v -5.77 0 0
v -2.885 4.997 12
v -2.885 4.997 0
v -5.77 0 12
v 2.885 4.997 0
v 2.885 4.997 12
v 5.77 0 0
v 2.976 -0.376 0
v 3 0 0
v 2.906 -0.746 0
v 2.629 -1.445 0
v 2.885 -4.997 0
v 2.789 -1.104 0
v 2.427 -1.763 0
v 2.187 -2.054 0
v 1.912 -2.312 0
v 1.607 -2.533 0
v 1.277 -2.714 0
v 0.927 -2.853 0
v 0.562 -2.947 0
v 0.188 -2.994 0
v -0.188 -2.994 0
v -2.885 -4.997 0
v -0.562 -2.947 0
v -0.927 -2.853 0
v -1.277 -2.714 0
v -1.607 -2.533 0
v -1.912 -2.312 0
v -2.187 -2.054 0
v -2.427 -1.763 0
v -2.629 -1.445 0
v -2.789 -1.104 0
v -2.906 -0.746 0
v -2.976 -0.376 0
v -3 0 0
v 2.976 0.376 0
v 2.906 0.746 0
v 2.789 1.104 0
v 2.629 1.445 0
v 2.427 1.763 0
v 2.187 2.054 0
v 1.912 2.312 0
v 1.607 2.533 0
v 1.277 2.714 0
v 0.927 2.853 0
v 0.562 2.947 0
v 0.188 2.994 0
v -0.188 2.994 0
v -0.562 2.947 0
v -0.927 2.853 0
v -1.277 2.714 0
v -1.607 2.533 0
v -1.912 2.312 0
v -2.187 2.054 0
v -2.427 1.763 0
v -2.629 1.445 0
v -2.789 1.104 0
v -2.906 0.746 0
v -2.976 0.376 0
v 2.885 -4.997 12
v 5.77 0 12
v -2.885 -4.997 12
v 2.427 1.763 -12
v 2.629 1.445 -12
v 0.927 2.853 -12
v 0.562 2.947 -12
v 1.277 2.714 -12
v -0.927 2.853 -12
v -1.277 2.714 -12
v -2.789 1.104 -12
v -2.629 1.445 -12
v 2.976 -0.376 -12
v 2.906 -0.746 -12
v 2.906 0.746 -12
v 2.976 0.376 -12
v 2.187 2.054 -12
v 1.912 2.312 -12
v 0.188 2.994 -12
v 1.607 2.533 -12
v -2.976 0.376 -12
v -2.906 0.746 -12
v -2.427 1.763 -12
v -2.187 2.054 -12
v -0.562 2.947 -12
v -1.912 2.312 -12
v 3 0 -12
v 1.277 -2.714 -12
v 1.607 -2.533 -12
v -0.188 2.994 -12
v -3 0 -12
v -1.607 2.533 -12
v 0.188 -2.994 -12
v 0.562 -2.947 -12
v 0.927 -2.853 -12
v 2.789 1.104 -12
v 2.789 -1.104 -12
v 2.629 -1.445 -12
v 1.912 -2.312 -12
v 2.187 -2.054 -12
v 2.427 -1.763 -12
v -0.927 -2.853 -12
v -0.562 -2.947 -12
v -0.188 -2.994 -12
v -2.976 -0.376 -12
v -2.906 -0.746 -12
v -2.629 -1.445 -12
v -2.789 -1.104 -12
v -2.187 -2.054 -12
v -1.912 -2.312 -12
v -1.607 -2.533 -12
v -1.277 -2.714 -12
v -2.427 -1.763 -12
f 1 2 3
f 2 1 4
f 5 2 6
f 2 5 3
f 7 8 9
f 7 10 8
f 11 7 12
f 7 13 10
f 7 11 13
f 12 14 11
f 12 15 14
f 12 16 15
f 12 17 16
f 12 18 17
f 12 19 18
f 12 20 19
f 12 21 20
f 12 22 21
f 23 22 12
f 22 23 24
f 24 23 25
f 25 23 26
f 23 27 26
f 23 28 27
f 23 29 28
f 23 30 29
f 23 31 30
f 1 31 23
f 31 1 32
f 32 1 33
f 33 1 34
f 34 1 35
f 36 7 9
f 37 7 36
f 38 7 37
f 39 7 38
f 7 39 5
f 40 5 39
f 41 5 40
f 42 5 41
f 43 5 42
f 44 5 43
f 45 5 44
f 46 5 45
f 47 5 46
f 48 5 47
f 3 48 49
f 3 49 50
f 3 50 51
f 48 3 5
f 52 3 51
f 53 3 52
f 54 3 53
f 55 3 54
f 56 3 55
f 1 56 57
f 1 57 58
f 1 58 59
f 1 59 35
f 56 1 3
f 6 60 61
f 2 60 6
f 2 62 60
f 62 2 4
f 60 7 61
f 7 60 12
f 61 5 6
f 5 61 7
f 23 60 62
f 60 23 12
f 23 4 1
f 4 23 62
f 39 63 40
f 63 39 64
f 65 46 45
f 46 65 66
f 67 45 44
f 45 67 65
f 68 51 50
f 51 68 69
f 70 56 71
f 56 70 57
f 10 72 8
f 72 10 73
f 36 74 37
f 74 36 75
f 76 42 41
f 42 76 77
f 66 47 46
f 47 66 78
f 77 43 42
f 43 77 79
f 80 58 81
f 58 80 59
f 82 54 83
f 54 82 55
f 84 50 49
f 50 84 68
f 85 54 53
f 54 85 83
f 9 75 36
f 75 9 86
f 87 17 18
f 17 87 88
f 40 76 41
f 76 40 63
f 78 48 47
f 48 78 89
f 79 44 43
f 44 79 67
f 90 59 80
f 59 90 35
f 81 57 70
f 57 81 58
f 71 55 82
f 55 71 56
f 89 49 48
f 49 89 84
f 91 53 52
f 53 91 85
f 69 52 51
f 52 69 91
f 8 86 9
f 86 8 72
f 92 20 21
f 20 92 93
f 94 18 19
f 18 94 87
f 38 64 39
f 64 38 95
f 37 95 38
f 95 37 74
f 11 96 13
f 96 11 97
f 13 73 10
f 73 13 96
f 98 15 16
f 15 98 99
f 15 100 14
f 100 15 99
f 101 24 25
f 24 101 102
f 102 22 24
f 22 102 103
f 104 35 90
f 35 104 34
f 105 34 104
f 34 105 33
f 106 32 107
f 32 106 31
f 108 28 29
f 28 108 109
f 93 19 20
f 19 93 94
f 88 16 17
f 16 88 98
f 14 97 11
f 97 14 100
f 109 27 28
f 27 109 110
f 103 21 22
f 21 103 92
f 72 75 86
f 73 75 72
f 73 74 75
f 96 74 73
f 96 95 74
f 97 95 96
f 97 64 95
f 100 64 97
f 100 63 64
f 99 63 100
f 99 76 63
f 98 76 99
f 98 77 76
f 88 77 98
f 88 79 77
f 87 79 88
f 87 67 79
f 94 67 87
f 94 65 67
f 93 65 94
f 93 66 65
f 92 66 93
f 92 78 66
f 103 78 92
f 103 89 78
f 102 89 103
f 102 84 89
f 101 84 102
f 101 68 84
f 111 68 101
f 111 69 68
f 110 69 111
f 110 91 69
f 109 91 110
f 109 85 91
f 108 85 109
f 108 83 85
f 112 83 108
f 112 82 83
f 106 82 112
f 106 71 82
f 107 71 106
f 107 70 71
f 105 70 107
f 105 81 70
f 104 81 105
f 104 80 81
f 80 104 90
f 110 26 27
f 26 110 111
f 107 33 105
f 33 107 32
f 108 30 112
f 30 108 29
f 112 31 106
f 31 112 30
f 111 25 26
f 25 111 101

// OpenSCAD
$fn = 50;


difference() {
	union() {
		translate(v = [0, 0, 0]) {
			rotate(a = [0, 0, 0]) {
				translate(v = [0, 0, 0]) {
					rotate(a = [0, 0, 0]) {
						linear_extrude(height = 12) {
							polygon(points = [[5.7700000000, 0.0000000000], [2.8850000000, 4.9969665798], [-2.8850000000, 4.9969665798], [-5.7700000000, 0.0000000000], [-2.8850000000, -4.9969665798], [2.8850000000, -4.9969665798]]);
						}
					}
				}
			}
		}
		translate(v = [0, 0, -12]) {
			rotate(a = [0, 0, 0]) {
				cylinder(h = 12, r = 3.0000000000);
			}
		}
	}
	union();
}
